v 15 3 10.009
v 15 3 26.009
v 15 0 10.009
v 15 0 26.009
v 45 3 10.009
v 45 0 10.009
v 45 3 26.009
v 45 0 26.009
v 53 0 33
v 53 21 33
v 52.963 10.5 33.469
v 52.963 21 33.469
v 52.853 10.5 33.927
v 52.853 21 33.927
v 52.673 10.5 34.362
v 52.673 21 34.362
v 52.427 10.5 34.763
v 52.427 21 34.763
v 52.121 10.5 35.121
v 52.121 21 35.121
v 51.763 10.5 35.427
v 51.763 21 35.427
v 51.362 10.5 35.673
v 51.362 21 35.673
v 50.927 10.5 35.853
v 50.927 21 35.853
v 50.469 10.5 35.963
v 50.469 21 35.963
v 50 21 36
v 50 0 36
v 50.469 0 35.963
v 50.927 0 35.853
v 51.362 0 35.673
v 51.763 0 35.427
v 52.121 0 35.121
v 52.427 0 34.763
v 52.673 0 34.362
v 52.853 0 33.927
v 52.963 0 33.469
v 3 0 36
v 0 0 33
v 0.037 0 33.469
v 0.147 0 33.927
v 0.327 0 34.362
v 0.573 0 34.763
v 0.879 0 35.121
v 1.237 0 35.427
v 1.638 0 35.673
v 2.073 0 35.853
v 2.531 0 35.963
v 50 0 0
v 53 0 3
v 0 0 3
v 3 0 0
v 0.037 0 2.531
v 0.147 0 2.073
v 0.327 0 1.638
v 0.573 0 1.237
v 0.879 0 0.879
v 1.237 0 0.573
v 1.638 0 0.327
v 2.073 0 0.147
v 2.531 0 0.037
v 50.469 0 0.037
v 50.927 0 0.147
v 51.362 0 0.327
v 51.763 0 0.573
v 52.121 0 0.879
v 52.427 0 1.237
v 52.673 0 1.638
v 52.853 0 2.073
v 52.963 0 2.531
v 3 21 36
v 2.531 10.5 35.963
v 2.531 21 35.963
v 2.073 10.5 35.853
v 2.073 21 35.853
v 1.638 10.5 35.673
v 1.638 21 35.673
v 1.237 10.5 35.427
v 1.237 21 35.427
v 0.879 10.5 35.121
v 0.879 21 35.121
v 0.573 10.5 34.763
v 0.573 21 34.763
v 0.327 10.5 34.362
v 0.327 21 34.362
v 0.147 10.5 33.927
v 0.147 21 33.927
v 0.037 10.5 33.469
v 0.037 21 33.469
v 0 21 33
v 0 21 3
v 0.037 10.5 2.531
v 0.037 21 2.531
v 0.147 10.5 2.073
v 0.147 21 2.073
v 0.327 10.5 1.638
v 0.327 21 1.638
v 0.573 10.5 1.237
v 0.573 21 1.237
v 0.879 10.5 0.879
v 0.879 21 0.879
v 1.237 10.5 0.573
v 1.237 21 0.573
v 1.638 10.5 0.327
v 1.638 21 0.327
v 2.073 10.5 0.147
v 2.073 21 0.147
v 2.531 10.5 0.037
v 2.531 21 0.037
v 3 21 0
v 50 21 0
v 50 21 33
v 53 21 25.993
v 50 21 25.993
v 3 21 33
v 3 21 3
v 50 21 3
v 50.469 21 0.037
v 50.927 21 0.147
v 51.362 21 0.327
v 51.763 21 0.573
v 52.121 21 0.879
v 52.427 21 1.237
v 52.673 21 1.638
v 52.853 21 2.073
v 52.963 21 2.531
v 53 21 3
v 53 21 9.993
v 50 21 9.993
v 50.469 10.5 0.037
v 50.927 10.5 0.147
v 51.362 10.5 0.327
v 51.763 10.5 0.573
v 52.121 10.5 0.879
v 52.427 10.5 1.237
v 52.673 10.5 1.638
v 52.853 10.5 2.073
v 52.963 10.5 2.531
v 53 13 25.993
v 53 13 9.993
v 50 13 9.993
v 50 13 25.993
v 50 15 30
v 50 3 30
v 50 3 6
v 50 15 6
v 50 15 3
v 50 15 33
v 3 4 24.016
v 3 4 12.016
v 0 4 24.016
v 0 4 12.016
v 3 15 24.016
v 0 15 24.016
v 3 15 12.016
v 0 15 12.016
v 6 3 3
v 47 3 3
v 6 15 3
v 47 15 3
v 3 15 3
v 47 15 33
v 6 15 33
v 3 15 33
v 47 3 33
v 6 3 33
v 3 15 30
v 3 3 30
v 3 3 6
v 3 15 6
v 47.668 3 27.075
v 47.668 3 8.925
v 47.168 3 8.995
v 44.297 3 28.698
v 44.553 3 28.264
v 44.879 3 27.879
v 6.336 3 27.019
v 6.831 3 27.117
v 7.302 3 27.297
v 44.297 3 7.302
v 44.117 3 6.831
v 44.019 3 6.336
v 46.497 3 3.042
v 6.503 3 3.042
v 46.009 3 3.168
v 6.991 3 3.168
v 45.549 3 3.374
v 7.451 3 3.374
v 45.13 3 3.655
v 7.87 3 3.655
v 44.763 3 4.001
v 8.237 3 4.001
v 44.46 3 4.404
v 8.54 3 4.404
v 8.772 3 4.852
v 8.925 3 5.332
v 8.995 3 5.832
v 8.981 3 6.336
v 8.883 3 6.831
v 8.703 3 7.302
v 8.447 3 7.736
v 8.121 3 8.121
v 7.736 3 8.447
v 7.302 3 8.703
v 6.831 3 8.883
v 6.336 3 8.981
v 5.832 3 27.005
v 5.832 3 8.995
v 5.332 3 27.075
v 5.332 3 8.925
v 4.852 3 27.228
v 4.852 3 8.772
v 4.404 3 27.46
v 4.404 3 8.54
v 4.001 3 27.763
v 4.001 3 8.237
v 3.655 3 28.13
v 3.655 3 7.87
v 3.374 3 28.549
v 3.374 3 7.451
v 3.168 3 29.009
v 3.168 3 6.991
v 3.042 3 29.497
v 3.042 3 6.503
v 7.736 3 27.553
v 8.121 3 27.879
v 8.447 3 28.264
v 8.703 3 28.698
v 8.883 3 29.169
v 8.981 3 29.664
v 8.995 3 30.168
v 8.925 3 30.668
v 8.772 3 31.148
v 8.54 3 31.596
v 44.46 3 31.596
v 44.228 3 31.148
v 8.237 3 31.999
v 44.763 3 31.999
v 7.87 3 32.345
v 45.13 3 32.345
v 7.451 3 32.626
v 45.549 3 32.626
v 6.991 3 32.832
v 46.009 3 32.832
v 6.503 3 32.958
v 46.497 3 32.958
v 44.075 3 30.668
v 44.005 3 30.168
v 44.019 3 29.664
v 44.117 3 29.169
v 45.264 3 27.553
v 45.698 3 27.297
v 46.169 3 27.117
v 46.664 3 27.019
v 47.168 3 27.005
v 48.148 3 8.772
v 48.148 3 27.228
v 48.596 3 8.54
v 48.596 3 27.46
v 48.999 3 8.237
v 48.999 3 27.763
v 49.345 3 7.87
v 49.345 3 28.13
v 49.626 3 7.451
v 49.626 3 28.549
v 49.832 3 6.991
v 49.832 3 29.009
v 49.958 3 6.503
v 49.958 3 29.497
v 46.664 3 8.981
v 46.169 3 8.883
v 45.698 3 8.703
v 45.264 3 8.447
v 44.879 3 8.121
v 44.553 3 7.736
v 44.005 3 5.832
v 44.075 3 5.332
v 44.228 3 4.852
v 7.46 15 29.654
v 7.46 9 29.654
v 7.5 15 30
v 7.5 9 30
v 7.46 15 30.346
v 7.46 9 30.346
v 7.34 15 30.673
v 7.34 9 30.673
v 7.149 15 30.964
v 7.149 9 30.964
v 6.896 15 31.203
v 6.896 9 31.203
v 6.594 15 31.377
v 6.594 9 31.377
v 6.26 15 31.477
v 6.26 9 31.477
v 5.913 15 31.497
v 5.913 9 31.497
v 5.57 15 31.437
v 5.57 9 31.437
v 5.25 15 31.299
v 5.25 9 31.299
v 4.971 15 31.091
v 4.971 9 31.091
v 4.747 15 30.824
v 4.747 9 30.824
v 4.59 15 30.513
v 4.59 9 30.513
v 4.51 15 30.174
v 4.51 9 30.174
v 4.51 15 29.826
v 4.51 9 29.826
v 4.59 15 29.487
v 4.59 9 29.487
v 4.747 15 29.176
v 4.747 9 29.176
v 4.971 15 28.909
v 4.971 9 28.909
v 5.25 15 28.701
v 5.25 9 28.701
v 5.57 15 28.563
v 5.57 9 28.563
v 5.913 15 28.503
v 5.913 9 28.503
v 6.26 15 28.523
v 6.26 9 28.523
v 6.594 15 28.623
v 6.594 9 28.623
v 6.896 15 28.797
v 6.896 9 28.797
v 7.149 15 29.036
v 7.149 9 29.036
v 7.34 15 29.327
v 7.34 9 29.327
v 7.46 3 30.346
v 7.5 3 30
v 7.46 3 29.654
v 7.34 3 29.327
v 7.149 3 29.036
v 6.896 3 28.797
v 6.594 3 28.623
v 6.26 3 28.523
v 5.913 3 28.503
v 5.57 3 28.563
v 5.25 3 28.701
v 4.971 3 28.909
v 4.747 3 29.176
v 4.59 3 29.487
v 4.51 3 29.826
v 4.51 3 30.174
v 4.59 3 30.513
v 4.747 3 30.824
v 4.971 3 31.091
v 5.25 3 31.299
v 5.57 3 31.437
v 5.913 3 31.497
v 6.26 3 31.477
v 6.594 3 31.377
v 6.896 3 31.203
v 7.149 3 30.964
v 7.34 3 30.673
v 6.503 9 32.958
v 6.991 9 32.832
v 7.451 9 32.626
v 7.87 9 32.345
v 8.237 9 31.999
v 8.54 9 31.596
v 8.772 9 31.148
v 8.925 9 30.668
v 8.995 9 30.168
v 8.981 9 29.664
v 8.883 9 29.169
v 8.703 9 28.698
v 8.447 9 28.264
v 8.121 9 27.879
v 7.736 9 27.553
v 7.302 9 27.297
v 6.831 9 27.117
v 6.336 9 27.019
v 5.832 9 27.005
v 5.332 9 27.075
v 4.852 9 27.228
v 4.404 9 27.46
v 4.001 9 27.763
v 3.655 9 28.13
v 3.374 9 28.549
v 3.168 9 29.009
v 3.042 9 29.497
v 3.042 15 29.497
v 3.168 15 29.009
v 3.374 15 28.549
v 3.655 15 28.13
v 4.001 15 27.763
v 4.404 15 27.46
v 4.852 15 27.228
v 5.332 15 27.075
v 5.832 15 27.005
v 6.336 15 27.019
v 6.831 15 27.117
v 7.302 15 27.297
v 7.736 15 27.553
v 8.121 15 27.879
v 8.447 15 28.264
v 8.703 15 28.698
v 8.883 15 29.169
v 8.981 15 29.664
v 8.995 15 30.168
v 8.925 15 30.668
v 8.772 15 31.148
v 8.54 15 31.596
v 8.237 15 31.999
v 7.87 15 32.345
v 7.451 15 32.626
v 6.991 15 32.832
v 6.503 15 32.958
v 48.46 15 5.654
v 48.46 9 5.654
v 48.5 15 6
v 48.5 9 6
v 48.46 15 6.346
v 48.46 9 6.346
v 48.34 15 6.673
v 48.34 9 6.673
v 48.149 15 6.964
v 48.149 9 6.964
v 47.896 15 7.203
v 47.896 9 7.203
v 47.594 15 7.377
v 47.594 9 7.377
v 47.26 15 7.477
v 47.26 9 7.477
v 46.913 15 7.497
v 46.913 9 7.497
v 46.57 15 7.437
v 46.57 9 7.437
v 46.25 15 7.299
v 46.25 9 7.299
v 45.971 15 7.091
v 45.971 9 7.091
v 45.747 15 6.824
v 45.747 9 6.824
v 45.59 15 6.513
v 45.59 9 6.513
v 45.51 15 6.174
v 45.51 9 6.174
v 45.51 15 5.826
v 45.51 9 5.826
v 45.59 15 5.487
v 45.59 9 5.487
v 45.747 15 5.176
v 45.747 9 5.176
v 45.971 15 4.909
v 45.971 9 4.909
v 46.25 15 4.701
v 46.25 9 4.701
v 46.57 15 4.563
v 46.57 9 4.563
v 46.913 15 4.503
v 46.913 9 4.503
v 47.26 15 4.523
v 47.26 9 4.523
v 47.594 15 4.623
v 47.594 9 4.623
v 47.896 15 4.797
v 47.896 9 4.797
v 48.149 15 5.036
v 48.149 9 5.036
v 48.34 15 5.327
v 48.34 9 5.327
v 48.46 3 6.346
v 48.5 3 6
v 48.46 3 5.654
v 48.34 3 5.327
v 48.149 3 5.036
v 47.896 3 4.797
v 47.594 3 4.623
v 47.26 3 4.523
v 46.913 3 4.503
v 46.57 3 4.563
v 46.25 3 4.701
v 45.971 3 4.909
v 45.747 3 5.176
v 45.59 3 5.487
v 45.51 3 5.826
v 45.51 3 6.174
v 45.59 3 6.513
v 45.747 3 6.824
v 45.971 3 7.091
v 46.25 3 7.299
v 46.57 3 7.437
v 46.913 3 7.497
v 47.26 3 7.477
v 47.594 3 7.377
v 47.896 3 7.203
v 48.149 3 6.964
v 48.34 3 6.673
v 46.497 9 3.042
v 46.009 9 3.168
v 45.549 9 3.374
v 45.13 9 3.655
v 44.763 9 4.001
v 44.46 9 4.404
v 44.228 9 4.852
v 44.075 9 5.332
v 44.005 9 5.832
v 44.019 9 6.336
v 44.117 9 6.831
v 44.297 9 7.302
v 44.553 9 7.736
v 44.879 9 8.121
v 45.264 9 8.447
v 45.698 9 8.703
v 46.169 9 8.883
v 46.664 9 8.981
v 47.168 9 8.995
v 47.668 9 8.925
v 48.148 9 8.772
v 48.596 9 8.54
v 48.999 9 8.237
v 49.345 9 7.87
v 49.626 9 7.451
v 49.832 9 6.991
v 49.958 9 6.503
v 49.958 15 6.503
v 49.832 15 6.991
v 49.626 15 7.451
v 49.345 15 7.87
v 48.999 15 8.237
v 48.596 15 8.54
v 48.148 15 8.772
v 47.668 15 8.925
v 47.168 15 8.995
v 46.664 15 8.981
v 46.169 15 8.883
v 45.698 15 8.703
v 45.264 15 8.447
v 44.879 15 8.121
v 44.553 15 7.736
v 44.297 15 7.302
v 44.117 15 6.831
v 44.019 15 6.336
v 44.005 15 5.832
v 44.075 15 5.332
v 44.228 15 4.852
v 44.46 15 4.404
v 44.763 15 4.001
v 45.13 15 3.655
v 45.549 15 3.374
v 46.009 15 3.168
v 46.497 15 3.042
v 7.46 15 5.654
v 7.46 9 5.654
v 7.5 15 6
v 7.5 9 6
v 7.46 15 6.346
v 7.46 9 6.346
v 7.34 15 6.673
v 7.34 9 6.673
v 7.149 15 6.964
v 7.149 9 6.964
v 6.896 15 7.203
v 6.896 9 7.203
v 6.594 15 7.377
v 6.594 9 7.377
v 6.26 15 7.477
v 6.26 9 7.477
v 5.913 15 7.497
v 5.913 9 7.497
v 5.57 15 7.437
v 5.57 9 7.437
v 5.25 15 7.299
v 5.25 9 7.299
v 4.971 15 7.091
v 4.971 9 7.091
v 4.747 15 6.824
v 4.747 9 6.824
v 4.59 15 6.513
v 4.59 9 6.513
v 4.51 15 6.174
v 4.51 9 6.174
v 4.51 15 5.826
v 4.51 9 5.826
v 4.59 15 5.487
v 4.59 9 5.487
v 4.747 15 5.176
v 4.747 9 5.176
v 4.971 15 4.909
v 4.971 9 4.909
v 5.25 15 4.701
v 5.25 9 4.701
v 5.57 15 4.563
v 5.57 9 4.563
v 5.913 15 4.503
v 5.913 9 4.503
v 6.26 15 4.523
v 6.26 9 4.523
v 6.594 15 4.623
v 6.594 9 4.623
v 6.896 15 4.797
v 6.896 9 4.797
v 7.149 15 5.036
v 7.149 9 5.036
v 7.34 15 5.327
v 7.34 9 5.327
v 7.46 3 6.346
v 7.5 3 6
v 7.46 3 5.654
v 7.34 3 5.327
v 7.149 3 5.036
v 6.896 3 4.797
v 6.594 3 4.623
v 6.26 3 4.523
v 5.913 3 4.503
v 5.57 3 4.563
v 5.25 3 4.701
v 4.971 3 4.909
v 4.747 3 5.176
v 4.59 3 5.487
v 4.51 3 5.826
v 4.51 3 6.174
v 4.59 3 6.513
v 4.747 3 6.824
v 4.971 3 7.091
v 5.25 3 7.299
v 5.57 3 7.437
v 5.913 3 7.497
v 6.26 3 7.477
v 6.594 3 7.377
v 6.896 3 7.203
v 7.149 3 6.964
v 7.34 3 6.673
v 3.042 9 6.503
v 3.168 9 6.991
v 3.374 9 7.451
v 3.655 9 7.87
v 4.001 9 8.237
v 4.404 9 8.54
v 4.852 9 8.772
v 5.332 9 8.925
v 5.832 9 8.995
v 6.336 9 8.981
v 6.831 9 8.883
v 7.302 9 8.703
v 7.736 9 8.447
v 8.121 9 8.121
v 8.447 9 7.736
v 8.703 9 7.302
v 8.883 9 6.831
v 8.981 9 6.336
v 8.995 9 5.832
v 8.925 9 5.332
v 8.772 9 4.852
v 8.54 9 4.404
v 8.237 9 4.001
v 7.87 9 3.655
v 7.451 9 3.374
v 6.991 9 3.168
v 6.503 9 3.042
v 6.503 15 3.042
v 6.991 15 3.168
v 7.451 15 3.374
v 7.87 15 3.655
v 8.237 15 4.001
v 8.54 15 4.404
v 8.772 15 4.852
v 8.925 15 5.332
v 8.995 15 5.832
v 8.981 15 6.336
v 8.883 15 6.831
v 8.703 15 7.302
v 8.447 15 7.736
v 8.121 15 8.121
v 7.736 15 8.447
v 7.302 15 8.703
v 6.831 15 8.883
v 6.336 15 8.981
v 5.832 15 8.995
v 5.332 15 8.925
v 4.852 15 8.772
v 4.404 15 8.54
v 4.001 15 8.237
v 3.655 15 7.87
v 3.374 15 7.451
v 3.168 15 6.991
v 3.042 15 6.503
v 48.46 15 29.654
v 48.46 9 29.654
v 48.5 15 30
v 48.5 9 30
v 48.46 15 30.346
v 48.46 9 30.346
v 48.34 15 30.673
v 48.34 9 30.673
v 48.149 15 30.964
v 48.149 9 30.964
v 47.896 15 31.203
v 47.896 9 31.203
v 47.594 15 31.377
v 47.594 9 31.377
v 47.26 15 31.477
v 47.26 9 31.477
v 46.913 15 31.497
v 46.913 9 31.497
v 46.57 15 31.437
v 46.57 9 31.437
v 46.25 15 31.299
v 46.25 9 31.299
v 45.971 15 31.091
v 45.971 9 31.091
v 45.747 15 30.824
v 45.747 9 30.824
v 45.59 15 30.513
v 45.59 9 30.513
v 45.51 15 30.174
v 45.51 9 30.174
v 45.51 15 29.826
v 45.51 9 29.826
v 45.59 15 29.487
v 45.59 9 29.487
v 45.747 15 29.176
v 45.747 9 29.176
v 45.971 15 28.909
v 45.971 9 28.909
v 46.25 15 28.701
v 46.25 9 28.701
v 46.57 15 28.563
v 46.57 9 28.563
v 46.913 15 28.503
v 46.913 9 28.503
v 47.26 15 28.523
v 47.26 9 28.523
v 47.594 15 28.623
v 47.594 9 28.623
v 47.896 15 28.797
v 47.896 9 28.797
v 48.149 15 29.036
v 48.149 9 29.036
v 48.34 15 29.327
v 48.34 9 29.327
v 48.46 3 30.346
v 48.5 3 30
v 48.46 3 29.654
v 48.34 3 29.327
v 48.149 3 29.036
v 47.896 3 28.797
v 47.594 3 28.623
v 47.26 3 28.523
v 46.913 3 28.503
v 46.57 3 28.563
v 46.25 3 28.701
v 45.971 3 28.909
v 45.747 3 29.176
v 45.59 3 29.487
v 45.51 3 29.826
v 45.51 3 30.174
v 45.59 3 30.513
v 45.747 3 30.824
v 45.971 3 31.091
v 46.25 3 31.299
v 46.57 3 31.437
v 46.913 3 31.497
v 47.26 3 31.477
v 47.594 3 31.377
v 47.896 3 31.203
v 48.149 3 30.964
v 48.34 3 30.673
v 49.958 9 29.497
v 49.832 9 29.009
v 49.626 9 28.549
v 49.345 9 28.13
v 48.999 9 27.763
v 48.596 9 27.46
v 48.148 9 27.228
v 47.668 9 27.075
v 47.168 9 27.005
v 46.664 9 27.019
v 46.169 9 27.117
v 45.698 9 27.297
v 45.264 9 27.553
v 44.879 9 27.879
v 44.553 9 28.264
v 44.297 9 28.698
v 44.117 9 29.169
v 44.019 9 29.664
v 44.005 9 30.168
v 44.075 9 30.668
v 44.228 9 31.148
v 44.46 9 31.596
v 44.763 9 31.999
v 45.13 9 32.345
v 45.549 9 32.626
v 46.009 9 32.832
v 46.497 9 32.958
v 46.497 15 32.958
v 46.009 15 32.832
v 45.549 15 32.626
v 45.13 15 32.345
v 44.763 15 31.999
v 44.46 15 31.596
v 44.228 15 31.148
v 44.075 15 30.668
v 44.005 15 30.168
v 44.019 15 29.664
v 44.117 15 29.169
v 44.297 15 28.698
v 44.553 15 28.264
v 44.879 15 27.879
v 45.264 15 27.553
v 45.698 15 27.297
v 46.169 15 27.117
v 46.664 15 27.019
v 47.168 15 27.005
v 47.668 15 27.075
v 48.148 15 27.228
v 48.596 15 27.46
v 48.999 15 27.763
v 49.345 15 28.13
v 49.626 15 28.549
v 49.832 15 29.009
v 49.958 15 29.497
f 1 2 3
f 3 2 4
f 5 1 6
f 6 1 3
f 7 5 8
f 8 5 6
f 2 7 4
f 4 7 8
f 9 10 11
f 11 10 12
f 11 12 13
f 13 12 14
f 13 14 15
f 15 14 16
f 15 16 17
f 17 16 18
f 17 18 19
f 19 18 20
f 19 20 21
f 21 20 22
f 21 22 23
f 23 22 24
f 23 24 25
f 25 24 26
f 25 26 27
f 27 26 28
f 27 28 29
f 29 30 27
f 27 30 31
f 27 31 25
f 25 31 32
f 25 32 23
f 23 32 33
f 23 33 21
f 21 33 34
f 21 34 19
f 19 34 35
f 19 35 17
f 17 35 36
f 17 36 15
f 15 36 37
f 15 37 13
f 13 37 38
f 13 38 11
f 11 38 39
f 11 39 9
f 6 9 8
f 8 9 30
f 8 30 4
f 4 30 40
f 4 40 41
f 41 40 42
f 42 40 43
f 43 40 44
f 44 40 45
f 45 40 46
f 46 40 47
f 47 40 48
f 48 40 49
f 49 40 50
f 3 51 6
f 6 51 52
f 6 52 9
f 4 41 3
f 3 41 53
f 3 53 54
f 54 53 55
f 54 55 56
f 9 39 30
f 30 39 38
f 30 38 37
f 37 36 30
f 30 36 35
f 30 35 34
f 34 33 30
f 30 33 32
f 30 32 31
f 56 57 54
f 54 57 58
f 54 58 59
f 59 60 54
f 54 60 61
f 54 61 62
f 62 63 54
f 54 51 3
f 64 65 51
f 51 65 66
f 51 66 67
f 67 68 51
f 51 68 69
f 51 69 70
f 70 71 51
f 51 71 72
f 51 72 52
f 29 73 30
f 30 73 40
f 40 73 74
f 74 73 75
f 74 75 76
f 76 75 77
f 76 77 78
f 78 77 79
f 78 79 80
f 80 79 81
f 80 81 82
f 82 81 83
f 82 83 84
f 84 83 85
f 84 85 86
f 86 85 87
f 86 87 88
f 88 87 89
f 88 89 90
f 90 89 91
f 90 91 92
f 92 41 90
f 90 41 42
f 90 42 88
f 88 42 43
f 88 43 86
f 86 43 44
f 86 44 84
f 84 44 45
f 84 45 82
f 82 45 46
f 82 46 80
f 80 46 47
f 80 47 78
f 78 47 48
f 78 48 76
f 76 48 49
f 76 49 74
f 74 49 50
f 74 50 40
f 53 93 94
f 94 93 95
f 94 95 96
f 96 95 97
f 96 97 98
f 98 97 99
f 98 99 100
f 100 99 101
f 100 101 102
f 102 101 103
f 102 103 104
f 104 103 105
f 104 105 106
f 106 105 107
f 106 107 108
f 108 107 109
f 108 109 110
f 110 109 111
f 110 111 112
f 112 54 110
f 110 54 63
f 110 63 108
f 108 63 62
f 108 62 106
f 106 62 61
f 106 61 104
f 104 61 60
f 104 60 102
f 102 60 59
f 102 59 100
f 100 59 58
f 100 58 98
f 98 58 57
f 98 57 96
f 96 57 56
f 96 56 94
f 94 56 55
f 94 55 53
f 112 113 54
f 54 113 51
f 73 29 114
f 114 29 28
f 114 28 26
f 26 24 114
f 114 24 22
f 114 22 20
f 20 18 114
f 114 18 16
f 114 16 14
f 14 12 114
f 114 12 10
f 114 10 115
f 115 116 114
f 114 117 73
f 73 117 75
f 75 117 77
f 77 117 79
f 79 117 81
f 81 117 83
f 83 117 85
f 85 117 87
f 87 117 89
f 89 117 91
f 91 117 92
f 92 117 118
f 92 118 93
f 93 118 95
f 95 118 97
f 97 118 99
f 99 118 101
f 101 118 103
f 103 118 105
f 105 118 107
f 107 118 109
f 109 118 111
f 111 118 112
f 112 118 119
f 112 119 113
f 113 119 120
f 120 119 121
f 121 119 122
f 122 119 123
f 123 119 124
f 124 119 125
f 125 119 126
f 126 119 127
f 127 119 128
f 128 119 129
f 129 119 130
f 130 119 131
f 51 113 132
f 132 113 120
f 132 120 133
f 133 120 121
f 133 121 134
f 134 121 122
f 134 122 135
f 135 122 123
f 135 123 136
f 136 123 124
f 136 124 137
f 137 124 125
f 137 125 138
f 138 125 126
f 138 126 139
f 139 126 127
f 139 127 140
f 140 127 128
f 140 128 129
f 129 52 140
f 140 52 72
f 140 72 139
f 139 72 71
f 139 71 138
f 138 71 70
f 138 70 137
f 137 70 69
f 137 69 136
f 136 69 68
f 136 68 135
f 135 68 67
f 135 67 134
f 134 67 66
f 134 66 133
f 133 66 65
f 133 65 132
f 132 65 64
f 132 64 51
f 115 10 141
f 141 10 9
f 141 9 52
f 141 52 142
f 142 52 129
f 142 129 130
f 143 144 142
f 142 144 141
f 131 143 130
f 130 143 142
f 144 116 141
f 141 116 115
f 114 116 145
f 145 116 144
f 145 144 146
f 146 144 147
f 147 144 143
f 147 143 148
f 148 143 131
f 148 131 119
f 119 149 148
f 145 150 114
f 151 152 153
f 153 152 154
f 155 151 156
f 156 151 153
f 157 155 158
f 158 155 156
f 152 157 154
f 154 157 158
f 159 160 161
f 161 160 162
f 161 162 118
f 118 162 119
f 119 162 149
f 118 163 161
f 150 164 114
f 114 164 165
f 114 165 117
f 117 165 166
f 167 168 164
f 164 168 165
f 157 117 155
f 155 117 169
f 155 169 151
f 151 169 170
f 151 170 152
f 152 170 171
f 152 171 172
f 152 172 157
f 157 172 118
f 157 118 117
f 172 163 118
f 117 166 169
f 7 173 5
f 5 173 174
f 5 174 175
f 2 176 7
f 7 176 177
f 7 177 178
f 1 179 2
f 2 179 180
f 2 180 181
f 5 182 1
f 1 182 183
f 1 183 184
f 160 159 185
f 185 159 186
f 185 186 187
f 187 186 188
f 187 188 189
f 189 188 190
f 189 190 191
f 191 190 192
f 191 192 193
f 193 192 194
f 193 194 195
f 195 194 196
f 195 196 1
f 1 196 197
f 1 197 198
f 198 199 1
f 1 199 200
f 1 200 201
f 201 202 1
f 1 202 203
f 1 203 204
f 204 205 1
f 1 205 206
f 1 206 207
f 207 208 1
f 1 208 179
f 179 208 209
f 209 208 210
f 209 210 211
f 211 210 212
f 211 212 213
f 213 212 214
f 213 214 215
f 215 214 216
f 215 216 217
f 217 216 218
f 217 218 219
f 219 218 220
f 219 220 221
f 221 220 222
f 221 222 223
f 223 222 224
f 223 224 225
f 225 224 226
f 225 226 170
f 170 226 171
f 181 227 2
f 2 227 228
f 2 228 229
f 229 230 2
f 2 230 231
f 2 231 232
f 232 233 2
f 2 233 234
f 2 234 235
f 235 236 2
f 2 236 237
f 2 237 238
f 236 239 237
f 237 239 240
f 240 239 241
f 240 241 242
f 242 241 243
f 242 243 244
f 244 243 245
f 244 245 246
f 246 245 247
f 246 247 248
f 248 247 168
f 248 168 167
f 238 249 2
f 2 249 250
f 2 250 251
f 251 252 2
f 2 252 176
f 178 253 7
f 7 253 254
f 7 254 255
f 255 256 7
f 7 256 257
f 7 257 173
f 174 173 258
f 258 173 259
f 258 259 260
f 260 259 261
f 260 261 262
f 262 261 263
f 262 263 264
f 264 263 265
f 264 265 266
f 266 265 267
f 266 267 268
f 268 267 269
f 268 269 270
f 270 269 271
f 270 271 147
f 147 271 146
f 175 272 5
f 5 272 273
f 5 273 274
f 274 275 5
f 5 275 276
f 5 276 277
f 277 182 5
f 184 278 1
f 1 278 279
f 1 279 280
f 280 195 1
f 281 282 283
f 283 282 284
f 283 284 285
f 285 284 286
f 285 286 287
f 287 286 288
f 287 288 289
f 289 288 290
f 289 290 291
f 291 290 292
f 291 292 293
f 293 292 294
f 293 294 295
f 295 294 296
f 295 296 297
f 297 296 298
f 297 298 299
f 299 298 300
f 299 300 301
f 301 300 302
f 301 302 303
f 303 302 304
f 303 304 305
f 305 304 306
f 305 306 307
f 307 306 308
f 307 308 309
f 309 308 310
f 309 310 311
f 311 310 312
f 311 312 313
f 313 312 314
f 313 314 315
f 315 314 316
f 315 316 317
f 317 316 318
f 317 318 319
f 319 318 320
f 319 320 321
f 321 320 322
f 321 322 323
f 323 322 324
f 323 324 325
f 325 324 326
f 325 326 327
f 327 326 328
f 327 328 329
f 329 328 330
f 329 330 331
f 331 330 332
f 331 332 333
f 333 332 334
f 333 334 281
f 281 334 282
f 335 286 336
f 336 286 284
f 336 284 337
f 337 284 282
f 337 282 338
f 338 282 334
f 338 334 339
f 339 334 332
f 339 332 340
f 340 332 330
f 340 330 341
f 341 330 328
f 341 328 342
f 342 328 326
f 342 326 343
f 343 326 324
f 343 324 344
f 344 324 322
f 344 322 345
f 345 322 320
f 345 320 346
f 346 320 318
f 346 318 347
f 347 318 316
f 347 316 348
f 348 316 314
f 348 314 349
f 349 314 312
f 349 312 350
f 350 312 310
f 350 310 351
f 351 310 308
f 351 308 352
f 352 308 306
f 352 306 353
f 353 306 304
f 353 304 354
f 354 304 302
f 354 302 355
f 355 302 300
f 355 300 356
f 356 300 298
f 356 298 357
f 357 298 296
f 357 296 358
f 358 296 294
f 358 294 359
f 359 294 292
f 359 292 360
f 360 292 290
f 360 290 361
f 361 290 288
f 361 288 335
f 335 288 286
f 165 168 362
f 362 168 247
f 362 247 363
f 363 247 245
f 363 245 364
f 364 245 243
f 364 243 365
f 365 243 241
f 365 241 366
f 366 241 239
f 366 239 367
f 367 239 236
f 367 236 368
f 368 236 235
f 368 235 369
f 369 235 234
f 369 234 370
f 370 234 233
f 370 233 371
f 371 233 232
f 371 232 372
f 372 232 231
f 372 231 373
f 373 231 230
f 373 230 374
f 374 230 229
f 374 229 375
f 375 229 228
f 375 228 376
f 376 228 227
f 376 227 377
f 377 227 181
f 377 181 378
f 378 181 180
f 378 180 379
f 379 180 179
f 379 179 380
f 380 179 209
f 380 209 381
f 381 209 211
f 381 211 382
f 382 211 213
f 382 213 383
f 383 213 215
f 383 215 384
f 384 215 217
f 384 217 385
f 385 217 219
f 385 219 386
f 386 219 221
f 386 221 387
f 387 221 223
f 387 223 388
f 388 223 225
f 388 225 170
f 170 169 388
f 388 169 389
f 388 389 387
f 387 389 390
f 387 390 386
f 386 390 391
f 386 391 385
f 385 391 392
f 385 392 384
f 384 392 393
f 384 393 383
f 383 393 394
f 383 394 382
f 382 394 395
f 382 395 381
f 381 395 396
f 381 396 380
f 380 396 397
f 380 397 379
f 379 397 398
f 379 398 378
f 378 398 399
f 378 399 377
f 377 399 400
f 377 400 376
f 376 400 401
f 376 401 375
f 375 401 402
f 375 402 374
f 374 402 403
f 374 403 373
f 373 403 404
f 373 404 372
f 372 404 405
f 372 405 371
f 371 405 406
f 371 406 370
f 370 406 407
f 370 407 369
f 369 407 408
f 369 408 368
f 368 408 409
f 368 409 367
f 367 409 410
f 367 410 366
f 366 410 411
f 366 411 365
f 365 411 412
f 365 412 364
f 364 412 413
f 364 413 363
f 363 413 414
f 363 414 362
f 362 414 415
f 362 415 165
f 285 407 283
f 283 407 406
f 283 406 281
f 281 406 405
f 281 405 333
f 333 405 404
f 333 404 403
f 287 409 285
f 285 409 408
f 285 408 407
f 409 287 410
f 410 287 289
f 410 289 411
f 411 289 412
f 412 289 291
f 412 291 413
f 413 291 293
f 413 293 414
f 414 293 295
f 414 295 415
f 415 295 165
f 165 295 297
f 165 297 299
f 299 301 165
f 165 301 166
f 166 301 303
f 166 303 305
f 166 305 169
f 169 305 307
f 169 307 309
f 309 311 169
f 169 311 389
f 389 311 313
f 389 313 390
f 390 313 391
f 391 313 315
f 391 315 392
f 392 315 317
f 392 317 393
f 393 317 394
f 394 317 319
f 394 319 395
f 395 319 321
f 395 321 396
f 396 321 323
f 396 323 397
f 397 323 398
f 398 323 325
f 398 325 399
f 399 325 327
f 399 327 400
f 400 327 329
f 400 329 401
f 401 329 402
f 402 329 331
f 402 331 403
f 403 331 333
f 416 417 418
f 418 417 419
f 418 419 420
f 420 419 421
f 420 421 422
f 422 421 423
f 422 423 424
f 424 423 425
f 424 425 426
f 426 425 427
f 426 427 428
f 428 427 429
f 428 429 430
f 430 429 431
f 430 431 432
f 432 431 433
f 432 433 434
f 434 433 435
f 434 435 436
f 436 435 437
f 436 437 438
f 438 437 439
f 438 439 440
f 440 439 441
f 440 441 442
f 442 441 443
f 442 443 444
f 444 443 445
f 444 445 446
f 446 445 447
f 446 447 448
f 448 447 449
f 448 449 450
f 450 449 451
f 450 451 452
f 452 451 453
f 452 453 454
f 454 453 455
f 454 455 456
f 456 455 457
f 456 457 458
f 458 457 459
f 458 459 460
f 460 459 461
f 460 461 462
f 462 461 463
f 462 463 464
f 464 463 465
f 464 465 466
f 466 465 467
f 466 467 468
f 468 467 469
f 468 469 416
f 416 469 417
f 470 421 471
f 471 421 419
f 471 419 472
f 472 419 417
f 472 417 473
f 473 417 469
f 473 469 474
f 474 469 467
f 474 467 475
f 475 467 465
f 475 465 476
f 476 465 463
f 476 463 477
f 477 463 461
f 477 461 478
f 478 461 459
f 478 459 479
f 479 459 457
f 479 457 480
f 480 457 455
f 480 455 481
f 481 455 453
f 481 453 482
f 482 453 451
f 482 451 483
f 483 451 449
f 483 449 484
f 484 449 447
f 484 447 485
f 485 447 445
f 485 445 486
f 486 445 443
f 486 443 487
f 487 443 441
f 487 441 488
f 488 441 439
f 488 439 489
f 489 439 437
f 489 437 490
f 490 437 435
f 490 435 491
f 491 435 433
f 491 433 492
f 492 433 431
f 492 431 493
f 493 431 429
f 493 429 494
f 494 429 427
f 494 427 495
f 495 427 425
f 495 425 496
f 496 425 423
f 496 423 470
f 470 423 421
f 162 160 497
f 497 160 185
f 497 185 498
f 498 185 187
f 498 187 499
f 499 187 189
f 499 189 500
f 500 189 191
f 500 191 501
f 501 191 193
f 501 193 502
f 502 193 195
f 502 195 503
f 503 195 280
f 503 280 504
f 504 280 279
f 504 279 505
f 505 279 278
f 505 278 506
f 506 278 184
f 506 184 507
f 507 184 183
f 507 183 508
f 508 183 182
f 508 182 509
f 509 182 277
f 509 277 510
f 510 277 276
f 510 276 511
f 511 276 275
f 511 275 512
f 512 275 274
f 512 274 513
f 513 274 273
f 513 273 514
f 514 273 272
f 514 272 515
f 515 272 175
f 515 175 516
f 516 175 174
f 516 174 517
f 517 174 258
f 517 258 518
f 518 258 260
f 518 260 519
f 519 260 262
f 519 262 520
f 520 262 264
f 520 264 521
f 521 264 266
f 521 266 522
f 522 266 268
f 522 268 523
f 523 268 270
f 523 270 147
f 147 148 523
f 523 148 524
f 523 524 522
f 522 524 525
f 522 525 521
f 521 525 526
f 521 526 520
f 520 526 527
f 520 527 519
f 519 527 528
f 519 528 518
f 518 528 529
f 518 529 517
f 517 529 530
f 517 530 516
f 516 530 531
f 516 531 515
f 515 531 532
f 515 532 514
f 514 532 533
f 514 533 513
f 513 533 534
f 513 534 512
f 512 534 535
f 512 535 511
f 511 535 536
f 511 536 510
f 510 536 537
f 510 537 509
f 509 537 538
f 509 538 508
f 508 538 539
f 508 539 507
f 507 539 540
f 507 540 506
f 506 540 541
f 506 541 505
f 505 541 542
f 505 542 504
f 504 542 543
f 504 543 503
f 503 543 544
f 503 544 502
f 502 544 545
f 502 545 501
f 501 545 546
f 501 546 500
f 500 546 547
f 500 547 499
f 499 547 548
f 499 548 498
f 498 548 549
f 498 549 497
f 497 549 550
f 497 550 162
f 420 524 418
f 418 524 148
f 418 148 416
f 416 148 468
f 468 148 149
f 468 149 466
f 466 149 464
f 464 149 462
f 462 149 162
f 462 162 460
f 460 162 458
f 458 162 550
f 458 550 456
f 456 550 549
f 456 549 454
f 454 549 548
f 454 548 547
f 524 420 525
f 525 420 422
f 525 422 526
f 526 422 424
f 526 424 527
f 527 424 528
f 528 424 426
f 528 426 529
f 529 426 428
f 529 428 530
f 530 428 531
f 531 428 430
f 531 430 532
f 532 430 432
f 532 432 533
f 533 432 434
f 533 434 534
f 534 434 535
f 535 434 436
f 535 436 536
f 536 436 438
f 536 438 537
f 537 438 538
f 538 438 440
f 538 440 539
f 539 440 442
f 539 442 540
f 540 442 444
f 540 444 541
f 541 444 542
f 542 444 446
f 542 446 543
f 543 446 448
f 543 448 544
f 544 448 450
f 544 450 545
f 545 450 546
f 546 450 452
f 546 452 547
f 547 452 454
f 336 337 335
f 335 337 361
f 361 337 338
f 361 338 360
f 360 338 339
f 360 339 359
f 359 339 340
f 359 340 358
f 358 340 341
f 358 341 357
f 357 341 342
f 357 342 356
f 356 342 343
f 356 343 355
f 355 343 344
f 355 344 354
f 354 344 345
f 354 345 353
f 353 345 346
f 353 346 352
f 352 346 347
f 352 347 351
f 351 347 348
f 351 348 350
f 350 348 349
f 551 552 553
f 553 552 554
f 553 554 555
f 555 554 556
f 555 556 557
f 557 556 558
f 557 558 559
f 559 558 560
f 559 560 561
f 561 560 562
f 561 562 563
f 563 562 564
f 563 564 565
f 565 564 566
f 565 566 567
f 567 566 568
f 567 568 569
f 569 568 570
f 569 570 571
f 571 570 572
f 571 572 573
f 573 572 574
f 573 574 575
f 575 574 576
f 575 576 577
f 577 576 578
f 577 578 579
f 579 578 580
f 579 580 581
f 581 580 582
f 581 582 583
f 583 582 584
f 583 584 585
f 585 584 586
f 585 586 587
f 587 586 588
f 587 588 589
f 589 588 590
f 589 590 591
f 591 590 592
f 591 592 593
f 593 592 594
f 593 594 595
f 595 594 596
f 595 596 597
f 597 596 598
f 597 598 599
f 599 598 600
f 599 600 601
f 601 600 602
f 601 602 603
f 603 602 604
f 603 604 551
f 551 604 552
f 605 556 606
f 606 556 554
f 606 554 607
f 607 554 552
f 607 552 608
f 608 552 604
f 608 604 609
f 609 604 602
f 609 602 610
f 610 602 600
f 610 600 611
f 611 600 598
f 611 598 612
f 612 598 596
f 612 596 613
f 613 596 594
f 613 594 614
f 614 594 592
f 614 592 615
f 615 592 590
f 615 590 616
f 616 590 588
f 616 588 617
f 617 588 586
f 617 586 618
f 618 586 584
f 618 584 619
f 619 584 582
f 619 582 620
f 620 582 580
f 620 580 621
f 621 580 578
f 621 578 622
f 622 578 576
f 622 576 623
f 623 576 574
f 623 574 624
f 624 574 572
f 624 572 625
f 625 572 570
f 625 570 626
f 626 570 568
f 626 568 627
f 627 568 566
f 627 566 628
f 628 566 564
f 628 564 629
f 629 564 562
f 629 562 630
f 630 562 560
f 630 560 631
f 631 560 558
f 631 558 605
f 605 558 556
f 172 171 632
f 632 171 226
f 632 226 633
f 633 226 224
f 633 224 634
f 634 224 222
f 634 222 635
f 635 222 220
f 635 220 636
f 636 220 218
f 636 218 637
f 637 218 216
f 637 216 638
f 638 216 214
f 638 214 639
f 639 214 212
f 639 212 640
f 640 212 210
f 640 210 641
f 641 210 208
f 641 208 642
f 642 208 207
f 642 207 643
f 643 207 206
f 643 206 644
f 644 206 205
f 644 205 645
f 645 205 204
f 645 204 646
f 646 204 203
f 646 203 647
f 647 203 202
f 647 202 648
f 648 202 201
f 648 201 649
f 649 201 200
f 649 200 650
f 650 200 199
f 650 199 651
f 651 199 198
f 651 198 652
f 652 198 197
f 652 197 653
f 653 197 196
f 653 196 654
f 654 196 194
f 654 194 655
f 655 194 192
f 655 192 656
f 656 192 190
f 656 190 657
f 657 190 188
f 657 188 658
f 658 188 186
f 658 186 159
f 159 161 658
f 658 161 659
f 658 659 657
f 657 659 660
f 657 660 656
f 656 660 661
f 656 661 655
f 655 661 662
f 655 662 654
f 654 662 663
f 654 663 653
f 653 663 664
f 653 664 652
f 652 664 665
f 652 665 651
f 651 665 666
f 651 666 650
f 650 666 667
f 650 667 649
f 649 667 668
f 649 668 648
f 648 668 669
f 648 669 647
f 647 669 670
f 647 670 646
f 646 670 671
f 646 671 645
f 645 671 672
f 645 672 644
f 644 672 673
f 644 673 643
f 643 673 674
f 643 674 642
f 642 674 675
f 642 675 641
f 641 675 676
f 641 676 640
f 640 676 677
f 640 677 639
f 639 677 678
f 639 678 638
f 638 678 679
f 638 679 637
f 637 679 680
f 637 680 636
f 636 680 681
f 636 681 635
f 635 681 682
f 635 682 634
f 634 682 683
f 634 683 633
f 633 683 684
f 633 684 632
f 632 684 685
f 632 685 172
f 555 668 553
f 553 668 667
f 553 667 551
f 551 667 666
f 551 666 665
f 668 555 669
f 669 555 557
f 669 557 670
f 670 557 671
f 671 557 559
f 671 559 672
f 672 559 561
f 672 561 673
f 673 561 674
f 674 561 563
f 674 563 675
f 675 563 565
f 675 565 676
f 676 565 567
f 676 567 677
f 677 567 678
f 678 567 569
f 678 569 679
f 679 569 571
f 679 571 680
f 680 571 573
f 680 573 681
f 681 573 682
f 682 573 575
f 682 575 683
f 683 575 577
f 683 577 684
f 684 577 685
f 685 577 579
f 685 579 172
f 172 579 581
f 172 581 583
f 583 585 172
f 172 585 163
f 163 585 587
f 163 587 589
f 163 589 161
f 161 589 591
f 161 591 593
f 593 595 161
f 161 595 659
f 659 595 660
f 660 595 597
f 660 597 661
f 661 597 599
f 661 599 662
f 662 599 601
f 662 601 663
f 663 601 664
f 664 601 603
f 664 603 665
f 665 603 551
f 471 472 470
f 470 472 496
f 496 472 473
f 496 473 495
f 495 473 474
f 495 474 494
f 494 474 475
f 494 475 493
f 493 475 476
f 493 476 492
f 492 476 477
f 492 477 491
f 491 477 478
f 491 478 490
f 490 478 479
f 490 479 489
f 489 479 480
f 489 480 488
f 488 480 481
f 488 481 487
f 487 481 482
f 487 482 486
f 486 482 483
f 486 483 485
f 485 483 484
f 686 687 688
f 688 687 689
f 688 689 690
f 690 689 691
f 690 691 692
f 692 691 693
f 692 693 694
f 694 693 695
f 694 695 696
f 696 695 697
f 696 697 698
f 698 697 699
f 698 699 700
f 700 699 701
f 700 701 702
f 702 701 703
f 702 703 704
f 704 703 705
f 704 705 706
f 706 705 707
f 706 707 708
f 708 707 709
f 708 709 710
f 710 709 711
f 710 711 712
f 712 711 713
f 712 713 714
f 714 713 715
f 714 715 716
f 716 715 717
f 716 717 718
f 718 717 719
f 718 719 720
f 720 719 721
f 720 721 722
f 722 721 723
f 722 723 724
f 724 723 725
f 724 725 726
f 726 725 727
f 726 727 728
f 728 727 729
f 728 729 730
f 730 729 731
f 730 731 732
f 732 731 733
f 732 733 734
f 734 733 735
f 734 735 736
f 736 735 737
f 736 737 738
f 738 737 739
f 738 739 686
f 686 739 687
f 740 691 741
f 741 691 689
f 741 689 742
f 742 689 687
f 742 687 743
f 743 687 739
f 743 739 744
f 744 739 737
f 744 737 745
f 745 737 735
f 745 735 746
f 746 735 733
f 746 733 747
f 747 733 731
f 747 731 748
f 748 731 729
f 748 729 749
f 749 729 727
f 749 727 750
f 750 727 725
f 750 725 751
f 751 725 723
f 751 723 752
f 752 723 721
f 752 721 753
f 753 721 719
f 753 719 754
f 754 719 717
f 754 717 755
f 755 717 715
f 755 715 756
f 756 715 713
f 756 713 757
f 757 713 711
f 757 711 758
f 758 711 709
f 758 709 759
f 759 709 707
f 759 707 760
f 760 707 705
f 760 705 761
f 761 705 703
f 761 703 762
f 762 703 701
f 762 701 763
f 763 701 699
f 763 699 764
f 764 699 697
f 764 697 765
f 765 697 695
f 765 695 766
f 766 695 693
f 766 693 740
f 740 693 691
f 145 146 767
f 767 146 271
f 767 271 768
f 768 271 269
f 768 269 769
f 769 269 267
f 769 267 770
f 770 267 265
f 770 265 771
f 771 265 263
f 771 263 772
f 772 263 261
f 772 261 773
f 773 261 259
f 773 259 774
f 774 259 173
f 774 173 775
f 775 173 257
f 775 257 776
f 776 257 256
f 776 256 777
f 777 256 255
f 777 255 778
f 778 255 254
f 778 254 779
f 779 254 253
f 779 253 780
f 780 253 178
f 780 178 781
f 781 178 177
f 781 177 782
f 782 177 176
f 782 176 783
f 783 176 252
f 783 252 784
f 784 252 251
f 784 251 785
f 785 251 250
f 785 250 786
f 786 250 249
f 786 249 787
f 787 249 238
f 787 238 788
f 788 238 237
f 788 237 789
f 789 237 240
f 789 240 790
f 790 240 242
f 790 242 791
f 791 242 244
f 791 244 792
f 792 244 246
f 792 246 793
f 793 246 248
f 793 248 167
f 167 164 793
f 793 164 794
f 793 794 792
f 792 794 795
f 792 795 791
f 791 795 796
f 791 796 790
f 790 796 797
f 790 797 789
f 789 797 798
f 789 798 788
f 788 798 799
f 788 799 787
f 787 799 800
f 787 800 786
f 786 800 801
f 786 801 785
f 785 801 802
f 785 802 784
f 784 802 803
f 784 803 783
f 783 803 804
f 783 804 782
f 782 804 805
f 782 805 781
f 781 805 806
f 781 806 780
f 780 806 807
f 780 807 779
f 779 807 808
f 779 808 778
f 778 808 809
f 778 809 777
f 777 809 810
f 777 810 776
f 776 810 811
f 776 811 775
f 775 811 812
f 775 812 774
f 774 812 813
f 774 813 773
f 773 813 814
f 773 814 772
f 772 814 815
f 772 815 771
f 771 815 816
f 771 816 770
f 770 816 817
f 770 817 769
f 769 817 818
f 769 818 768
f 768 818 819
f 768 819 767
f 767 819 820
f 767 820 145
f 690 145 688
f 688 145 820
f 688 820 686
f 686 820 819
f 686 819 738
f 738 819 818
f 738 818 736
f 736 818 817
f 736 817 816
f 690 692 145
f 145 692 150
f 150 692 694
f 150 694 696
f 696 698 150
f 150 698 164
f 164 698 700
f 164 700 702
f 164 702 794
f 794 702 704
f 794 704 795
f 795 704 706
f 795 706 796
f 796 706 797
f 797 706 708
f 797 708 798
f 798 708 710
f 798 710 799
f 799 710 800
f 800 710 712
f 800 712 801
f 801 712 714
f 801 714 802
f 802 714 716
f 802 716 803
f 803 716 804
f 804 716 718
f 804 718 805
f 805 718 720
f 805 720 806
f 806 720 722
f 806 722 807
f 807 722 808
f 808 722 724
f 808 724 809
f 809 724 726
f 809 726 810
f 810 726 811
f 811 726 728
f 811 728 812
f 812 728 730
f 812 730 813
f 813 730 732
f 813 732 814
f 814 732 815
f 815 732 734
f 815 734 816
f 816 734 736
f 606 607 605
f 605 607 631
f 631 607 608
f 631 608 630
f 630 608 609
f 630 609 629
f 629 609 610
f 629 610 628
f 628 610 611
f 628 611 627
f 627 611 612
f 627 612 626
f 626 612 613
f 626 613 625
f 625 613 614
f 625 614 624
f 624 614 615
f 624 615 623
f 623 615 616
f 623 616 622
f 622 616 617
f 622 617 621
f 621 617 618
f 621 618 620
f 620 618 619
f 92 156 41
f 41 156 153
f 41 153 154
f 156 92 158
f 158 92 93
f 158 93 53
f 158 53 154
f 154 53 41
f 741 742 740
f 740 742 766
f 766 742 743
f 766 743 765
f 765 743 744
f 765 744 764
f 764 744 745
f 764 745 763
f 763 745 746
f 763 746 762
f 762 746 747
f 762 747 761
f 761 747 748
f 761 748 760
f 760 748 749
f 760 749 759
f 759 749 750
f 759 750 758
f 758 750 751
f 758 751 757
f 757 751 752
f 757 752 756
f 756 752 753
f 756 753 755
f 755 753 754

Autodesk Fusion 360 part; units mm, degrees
sketch "Sketch1" plane through (0, 0, 0) normal (0, 1, 0) x (1, 0, 0)
  line L0 (0, 0) -> (53, 0)
  line L1 (53, 0) -> (53, -36)
  line L2 (53, -36) -> (0, -36)
  line L3 (0, -36) -> (0, 0)
extrude "Extrude1" add sketch "Sketch1" along normal blind 3
sketch "Sketch2" plane through (0, 3, 0) normal (0, 1, 0) x (-1, 0, 0)
  line L0 (0, 36) -> (-53, 36)
  line L1 (-53, 36) -> (-53, 0)
  line L2 (-53, 0) -> (0, 0)
  line L3 (0, 0) -> (0, 36)
  line L4 (-3, 3) -> (-50, 3)
  line L5 (-50, 3) -> (-50, 33)
  line L6 (-50, 33) -> (-3, 33)
  line L7 (-3, 33) -> (-3, 3)
  circle A0 centre (-47, 30) radius 3
  circle A1 centre (-47, 6) radius 3
  circle A2 centre (-6, 30) radius 3
  circle A3 centre (-6, 6) radius 3
  circle A4 centre (-6, 6) radius 1.5
  circle A5 centre (-6, 30) radius 1.5
  circle A6 centre (-47, 30) radius 1.5
  circle A7 centre (-47, 6) radius 1.5
  dimension "d3" = 6
  dimension "d4" = 6
  dimension "d5" = 3
  dimension "d6" = 3
  dimension "d7" = 3
extrude "Extrude2" add sketch "Sketch2" along normal blind 12 contours L4 L7 A3 | A3 | L4 L5 A1 | A1 | L6 L7 A2 | A2 | L5 L6 A0 | A0
extrude "Extrude3" add sketch "Sketch2" along normal blind 18 contours L0 L1 L2 L3
sketch "Sketch3" plane through (0, 0, 0) normal (-1, 0, 0) x (0, 0, 1)
  line L0 (0, 0) -> (36, 0)
  line L1 (36, 0) -> (36, 21)
  line L2 (36, 21) -> (0, 21)
  line L3 (0, 21) -> (0, 0)
  line L4 (12.0161, 21) -> (24.0161, 21)
  line L5 (24.0161, 21) -> (24.0161, 4)
  line L6 (24.0161, 4) -> (12.0161, 4)
  line L7 (12.0161, 4) -> (12.0161, 21)
  line L8 (12.0161, 21) -> (24.0161, 21)
  line L9 (24.0161, 21) -> (24.0161, 15)
  line L10 (24.0161, 15) -> (12.0161, 15)
  line L11 (12.0161, 15) -> (12.0161, 21)
  dimension "d12" = 12
  dimension "d13" = 17
  dimension "d14" = 6
extrude "Extrude4" cut sketch "Sketch3" against normal blind 11 contours L5 L6 L7 L10
sketch "Sketch4" plane through (53, 0, 0) normal (1, 0, 0) x (0, 0, -1)
  line L0 (-36, 0) -> (0, 0)
  line L1 (0, 0) -> (0, 21)
  line L2 (0, 21) -> (-36, 21)
  line L3 (-36, 21) -> (-36, 0)
  line L4 (-9.9926, 21) -> (-25.9926, 21)
  line L5 (-25.9926, 21) -> (-25.9926, 13)
  line L6 (-25.9926, 13) -> (-9.9926, 13)
  line L7 (-9.9926, 13) -> (-9.9926, 21)
  dimension "d17" = 16
extrude "Extrude5" cut sketch "Sketch4" against normal blind 6 contours L2 L4 L5 L6 L7
fillet "Fillet1" radius 3 1 edges at (53, 10.5, 0)
fillet "Fillet2" radius 3 1 edges at (0, 10.5, 0)
fillet "Fillet3" radius 3 1 edges at (0, 10.5, 36)
fillet "Fillet4" radius 3 1 edges at (53, 10.5, 36)
sketch "Sketch5" plane through (0, 0, 0) normal (0, -1, 0) x (1, 0, 0)
  arc A0 (53, 33) -> (50, 36) centre (50, 33) ccw
  line L0 (50, 36) -> (3, 36)
  arc A1 (3, 36) -> (0, 33) centre (3, 33) ccw
  line L1 (0, 33) -> (0, 3)
  arc A2 (0, 3) -> (3, 0) centre (3, 3) ccw
  line L2 (3, 0) -> (50, 0)
  arc A3 (50, 0) -> (53, 3) centre (50, 3) ccw
  line L3 (53, 3) -> (53, 33)
  line L4 (50, 10.0095) -> (15, 10.0095)
  line L5 (15, 10.0095) -> (15, 26.0095)
  line L6 (15, 26.0095) -> (50, 26.0095)
  line L7 (50, 26.0095) -> (50, 10.0095)
  line L8 (50, 10.0095) -> (45, 10.0095)
  line L9 (45, 10.0095) -> (45, 26.0095)
  line L10 (45, 26.0095) -> (50, 26.0095)
  line L11 (50, 26.0095) -> (50, 10.0095)
  dimension "d28" = 16
  dimension "d29" = 5
extrude "Extrude6" cut sketch "Sketch5" against normal blind 7 contours L4 L5 L6 L9
